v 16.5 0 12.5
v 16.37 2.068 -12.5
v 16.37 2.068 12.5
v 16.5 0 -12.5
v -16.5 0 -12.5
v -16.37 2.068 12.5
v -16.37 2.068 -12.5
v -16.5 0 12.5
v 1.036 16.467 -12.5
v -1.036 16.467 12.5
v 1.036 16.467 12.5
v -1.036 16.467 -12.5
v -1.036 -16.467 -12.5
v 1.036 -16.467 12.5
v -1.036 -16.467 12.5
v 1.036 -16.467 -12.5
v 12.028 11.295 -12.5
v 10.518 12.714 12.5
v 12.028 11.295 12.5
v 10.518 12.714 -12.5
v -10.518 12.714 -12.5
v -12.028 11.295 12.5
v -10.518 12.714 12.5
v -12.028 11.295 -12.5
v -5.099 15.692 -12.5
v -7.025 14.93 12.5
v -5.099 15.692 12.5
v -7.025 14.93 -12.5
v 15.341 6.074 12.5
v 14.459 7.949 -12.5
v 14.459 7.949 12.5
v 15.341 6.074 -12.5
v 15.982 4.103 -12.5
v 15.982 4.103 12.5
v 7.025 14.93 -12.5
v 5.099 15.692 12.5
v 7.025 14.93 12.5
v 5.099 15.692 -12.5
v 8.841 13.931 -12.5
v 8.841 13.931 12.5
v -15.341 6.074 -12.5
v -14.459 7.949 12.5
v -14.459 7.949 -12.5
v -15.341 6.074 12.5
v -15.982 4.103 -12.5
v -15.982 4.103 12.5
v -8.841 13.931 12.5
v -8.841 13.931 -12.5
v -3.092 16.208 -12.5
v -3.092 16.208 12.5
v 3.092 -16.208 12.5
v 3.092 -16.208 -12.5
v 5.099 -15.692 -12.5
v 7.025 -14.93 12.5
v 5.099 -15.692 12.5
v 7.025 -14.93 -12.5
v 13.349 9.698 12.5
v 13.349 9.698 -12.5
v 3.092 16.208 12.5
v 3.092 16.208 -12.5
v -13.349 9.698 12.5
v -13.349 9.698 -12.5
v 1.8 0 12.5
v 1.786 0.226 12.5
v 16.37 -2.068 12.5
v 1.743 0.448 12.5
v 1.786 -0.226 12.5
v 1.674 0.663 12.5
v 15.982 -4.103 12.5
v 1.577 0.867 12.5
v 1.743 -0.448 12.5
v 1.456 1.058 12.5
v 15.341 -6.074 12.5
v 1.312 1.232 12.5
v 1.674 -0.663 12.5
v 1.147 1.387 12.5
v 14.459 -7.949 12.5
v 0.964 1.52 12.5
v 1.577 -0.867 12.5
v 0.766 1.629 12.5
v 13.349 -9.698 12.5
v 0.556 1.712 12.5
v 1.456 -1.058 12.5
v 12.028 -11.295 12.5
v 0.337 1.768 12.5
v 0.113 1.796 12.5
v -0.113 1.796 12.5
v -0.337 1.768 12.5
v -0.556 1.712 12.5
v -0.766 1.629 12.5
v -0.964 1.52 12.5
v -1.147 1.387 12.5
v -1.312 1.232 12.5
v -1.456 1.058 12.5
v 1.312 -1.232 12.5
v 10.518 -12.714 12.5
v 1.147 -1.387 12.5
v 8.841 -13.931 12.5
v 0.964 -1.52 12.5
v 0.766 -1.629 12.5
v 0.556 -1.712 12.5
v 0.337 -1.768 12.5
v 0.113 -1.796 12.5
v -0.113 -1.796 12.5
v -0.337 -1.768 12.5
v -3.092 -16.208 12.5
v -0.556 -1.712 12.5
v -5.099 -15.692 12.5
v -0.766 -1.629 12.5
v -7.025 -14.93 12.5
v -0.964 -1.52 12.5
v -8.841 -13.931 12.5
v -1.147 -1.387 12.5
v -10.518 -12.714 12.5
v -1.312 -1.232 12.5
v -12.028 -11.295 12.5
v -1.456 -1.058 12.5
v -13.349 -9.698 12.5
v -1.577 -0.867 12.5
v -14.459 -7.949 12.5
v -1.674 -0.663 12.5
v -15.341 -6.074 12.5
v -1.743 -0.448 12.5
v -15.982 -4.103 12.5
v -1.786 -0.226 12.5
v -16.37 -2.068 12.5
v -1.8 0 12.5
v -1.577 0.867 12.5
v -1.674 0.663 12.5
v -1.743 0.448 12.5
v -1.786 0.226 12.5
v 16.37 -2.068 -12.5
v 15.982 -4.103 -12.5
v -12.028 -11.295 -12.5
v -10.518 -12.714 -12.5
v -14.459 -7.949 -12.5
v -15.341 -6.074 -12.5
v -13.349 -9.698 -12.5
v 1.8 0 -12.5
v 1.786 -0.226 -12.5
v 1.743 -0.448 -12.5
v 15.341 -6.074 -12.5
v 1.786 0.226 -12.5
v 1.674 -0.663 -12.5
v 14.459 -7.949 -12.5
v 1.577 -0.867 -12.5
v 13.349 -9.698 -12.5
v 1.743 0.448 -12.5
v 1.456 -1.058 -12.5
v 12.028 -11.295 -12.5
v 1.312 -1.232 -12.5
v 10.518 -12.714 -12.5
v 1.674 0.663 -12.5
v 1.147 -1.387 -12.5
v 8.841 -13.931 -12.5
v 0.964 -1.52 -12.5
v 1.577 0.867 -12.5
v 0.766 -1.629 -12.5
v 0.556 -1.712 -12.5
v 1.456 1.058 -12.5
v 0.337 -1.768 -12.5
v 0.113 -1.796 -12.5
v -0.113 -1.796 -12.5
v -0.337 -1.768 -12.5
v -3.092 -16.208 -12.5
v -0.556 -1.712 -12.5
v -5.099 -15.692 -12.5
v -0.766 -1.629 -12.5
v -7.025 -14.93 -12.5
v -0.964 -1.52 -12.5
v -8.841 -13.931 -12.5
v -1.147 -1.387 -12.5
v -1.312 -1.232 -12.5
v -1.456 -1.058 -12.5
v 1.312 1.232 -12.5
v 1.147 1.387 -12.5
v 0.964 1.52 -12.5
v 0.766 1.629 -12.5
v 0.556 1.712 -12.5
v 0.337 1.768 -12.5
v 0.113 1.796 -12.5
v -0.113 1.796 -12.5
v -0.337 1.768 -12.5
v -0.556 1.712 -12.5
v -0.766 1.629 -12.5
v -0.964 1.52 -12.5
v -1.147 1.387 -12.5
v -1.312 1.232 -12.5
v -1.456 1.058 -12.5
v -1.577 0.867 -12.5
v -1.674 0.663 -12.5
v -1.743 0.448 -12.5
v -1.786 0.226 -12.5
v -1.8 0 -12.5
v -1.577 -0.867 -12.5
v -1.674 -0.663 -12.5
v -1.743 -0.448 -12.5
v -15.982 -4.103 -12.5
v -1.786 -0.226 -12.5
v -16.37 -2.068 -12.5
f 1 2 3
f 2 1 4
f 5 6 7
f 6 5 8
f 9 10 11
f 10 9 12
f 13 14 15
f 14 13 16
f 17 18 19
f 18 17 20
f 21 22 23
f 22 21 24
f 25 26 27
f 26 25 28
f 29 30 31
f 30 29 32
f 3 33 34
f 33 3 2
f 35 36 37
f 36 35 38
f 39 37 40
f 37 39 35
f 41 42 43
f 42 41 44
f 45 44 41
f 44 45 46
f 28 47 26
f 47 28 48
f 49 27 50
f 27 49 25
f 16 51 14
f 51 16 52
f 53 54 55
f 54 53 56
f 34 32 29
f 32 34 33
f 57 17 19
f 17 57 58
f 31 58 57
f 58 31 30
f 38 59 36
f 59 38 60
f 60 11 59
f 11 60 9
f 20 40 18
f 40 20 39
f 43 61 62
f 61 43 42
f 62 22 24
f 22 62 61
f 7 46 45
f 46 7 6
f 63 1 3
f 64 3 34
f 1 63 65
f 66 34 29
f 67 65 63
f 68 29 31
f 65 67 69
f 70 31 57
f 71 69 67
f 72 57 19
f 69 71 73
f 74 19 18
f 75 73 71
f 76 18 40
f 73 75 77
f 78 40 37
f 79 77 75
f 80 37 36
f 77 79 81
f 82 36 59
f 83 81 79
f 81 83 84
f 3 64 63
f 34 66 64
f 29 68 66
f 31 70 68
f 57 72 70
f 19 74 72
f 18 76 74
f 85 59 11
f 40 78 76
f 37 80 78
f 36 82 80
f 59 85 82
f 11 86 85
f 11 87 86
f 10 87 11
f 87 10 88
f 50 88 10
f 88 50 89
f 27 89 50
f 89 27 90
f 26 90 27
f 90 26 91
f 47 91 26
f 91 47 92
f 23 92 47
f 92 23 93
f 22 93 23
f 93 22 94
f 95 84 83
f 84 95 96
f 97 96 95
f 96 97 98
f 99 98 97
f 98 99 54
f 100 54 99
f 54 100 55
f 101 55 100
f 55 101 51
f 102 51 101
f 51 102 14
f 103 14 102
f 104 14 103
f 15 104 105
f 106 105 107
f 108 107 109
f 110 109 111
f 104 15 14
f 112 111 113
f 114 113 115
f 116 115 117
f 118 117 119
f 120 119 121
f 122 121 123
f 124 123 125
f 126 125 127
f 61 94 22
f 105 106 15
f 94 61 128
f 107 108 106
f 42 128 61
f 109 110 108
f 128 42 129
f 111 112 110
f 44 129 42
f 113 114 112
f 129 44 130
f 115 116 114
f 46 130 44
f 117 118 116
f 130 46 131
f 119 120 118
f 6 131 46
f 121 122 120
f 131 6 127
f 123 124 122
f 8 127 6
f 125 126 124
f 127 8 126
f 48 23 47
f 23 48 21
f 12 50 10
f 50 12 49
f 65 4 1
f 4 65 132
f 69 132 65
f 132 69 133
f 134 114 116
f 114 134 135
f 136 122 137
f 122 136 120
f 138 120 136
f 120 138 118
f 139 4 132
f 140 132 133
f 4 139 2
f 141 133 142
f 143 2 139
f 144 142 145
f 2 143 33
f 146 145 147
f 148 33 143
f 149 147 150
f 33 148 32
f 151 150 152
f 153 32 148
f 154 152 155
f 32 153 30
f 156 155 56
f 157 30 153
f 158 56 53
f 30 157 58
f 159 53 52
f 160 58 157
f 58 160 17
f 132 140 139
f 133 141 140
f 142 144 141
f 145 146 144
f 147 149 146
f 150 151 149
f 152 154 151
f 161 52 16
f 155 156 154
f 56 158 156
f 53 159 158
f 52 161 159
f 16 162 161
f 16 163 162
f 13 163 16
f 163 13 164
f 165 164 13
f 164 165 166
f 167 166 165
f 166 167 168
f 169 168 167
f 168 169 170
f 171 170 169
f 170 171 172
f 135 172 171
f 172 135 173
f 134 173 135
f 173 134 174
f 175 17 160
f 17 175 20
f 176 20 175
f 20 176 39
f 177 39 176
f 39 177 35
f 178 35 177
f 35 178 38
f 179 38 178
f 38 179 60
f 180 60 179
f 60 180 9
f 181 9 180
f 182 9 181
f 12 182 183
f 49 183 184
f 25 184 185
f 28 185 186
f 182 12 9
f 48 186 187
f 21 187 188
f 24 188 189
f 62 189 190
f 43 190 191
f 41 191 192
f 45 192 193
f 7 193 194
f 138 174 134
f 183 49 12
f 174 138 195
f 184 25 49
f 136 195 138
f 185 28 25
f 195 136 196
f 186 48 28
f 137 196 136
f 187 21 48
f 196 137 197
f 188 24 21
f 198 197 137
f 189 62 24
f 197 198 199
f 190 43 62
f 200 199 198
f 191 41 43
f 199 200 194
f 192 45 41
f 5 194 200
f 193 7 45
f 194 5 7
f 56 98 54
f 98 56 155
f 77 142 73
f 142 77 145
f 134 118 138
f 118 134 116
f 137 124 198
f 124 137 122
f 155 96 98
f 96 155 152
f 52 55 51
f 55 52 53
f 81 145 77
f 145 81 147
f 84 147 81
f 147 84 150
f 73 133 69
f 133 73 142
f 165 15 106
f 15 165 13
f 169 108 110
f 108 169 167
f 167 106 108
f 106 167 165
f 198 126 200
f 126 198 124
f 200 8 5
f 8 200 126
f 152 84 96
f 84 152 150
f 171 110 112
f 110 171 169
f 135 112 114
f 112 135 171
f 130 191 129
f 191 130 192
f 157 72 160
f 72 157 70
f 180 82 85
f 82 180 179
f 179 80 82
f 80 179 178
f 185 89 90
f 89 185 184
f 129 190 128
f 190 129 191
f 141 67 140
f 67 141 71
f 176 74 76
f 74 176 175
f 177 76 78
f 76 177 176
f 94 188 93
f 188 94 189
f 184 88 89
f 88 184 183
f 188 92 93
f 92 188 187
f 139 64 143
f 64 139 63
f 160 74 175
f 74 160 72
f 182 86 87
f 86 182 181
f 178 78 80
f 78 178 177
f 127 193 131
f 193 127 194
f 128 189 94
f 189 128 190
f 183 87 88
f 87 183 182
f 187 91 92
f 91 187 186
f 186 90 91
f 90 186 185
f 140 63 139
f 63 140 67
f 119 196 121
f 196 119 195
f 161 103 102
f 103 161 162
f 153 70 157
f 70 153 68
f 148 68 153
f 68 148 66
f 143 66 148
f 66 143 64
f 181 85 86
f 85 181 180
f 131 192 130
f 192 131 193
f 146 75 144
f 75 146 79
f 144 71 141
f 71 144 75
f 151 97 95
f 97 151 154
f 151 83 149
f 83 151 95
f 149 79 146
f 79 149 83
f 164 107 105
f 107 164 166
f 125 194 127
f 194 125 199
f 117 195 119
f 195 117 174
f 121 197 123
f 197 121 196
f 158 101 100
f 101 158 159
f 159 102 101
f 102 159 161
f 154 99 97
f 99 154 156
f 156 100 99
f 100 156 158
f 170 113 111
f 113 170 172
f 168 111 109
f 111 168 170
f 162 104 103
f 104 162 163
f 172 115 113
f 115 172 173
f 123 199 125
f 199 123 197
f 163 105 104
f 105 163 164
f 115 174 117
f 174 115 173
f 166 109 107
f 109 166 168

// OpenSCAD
$fn = 50;


difference() {
	union() {
		translate(v = [0, 0, -12.5000000000]) {
			cylinder(h = 25, r = 16.5000000000);
		}
	}
	union() {
		translate(v = [0, 0, -100.0000000000]) {
			cylinder(h = 200, r = 1.8000000000);
		}
	}
}
